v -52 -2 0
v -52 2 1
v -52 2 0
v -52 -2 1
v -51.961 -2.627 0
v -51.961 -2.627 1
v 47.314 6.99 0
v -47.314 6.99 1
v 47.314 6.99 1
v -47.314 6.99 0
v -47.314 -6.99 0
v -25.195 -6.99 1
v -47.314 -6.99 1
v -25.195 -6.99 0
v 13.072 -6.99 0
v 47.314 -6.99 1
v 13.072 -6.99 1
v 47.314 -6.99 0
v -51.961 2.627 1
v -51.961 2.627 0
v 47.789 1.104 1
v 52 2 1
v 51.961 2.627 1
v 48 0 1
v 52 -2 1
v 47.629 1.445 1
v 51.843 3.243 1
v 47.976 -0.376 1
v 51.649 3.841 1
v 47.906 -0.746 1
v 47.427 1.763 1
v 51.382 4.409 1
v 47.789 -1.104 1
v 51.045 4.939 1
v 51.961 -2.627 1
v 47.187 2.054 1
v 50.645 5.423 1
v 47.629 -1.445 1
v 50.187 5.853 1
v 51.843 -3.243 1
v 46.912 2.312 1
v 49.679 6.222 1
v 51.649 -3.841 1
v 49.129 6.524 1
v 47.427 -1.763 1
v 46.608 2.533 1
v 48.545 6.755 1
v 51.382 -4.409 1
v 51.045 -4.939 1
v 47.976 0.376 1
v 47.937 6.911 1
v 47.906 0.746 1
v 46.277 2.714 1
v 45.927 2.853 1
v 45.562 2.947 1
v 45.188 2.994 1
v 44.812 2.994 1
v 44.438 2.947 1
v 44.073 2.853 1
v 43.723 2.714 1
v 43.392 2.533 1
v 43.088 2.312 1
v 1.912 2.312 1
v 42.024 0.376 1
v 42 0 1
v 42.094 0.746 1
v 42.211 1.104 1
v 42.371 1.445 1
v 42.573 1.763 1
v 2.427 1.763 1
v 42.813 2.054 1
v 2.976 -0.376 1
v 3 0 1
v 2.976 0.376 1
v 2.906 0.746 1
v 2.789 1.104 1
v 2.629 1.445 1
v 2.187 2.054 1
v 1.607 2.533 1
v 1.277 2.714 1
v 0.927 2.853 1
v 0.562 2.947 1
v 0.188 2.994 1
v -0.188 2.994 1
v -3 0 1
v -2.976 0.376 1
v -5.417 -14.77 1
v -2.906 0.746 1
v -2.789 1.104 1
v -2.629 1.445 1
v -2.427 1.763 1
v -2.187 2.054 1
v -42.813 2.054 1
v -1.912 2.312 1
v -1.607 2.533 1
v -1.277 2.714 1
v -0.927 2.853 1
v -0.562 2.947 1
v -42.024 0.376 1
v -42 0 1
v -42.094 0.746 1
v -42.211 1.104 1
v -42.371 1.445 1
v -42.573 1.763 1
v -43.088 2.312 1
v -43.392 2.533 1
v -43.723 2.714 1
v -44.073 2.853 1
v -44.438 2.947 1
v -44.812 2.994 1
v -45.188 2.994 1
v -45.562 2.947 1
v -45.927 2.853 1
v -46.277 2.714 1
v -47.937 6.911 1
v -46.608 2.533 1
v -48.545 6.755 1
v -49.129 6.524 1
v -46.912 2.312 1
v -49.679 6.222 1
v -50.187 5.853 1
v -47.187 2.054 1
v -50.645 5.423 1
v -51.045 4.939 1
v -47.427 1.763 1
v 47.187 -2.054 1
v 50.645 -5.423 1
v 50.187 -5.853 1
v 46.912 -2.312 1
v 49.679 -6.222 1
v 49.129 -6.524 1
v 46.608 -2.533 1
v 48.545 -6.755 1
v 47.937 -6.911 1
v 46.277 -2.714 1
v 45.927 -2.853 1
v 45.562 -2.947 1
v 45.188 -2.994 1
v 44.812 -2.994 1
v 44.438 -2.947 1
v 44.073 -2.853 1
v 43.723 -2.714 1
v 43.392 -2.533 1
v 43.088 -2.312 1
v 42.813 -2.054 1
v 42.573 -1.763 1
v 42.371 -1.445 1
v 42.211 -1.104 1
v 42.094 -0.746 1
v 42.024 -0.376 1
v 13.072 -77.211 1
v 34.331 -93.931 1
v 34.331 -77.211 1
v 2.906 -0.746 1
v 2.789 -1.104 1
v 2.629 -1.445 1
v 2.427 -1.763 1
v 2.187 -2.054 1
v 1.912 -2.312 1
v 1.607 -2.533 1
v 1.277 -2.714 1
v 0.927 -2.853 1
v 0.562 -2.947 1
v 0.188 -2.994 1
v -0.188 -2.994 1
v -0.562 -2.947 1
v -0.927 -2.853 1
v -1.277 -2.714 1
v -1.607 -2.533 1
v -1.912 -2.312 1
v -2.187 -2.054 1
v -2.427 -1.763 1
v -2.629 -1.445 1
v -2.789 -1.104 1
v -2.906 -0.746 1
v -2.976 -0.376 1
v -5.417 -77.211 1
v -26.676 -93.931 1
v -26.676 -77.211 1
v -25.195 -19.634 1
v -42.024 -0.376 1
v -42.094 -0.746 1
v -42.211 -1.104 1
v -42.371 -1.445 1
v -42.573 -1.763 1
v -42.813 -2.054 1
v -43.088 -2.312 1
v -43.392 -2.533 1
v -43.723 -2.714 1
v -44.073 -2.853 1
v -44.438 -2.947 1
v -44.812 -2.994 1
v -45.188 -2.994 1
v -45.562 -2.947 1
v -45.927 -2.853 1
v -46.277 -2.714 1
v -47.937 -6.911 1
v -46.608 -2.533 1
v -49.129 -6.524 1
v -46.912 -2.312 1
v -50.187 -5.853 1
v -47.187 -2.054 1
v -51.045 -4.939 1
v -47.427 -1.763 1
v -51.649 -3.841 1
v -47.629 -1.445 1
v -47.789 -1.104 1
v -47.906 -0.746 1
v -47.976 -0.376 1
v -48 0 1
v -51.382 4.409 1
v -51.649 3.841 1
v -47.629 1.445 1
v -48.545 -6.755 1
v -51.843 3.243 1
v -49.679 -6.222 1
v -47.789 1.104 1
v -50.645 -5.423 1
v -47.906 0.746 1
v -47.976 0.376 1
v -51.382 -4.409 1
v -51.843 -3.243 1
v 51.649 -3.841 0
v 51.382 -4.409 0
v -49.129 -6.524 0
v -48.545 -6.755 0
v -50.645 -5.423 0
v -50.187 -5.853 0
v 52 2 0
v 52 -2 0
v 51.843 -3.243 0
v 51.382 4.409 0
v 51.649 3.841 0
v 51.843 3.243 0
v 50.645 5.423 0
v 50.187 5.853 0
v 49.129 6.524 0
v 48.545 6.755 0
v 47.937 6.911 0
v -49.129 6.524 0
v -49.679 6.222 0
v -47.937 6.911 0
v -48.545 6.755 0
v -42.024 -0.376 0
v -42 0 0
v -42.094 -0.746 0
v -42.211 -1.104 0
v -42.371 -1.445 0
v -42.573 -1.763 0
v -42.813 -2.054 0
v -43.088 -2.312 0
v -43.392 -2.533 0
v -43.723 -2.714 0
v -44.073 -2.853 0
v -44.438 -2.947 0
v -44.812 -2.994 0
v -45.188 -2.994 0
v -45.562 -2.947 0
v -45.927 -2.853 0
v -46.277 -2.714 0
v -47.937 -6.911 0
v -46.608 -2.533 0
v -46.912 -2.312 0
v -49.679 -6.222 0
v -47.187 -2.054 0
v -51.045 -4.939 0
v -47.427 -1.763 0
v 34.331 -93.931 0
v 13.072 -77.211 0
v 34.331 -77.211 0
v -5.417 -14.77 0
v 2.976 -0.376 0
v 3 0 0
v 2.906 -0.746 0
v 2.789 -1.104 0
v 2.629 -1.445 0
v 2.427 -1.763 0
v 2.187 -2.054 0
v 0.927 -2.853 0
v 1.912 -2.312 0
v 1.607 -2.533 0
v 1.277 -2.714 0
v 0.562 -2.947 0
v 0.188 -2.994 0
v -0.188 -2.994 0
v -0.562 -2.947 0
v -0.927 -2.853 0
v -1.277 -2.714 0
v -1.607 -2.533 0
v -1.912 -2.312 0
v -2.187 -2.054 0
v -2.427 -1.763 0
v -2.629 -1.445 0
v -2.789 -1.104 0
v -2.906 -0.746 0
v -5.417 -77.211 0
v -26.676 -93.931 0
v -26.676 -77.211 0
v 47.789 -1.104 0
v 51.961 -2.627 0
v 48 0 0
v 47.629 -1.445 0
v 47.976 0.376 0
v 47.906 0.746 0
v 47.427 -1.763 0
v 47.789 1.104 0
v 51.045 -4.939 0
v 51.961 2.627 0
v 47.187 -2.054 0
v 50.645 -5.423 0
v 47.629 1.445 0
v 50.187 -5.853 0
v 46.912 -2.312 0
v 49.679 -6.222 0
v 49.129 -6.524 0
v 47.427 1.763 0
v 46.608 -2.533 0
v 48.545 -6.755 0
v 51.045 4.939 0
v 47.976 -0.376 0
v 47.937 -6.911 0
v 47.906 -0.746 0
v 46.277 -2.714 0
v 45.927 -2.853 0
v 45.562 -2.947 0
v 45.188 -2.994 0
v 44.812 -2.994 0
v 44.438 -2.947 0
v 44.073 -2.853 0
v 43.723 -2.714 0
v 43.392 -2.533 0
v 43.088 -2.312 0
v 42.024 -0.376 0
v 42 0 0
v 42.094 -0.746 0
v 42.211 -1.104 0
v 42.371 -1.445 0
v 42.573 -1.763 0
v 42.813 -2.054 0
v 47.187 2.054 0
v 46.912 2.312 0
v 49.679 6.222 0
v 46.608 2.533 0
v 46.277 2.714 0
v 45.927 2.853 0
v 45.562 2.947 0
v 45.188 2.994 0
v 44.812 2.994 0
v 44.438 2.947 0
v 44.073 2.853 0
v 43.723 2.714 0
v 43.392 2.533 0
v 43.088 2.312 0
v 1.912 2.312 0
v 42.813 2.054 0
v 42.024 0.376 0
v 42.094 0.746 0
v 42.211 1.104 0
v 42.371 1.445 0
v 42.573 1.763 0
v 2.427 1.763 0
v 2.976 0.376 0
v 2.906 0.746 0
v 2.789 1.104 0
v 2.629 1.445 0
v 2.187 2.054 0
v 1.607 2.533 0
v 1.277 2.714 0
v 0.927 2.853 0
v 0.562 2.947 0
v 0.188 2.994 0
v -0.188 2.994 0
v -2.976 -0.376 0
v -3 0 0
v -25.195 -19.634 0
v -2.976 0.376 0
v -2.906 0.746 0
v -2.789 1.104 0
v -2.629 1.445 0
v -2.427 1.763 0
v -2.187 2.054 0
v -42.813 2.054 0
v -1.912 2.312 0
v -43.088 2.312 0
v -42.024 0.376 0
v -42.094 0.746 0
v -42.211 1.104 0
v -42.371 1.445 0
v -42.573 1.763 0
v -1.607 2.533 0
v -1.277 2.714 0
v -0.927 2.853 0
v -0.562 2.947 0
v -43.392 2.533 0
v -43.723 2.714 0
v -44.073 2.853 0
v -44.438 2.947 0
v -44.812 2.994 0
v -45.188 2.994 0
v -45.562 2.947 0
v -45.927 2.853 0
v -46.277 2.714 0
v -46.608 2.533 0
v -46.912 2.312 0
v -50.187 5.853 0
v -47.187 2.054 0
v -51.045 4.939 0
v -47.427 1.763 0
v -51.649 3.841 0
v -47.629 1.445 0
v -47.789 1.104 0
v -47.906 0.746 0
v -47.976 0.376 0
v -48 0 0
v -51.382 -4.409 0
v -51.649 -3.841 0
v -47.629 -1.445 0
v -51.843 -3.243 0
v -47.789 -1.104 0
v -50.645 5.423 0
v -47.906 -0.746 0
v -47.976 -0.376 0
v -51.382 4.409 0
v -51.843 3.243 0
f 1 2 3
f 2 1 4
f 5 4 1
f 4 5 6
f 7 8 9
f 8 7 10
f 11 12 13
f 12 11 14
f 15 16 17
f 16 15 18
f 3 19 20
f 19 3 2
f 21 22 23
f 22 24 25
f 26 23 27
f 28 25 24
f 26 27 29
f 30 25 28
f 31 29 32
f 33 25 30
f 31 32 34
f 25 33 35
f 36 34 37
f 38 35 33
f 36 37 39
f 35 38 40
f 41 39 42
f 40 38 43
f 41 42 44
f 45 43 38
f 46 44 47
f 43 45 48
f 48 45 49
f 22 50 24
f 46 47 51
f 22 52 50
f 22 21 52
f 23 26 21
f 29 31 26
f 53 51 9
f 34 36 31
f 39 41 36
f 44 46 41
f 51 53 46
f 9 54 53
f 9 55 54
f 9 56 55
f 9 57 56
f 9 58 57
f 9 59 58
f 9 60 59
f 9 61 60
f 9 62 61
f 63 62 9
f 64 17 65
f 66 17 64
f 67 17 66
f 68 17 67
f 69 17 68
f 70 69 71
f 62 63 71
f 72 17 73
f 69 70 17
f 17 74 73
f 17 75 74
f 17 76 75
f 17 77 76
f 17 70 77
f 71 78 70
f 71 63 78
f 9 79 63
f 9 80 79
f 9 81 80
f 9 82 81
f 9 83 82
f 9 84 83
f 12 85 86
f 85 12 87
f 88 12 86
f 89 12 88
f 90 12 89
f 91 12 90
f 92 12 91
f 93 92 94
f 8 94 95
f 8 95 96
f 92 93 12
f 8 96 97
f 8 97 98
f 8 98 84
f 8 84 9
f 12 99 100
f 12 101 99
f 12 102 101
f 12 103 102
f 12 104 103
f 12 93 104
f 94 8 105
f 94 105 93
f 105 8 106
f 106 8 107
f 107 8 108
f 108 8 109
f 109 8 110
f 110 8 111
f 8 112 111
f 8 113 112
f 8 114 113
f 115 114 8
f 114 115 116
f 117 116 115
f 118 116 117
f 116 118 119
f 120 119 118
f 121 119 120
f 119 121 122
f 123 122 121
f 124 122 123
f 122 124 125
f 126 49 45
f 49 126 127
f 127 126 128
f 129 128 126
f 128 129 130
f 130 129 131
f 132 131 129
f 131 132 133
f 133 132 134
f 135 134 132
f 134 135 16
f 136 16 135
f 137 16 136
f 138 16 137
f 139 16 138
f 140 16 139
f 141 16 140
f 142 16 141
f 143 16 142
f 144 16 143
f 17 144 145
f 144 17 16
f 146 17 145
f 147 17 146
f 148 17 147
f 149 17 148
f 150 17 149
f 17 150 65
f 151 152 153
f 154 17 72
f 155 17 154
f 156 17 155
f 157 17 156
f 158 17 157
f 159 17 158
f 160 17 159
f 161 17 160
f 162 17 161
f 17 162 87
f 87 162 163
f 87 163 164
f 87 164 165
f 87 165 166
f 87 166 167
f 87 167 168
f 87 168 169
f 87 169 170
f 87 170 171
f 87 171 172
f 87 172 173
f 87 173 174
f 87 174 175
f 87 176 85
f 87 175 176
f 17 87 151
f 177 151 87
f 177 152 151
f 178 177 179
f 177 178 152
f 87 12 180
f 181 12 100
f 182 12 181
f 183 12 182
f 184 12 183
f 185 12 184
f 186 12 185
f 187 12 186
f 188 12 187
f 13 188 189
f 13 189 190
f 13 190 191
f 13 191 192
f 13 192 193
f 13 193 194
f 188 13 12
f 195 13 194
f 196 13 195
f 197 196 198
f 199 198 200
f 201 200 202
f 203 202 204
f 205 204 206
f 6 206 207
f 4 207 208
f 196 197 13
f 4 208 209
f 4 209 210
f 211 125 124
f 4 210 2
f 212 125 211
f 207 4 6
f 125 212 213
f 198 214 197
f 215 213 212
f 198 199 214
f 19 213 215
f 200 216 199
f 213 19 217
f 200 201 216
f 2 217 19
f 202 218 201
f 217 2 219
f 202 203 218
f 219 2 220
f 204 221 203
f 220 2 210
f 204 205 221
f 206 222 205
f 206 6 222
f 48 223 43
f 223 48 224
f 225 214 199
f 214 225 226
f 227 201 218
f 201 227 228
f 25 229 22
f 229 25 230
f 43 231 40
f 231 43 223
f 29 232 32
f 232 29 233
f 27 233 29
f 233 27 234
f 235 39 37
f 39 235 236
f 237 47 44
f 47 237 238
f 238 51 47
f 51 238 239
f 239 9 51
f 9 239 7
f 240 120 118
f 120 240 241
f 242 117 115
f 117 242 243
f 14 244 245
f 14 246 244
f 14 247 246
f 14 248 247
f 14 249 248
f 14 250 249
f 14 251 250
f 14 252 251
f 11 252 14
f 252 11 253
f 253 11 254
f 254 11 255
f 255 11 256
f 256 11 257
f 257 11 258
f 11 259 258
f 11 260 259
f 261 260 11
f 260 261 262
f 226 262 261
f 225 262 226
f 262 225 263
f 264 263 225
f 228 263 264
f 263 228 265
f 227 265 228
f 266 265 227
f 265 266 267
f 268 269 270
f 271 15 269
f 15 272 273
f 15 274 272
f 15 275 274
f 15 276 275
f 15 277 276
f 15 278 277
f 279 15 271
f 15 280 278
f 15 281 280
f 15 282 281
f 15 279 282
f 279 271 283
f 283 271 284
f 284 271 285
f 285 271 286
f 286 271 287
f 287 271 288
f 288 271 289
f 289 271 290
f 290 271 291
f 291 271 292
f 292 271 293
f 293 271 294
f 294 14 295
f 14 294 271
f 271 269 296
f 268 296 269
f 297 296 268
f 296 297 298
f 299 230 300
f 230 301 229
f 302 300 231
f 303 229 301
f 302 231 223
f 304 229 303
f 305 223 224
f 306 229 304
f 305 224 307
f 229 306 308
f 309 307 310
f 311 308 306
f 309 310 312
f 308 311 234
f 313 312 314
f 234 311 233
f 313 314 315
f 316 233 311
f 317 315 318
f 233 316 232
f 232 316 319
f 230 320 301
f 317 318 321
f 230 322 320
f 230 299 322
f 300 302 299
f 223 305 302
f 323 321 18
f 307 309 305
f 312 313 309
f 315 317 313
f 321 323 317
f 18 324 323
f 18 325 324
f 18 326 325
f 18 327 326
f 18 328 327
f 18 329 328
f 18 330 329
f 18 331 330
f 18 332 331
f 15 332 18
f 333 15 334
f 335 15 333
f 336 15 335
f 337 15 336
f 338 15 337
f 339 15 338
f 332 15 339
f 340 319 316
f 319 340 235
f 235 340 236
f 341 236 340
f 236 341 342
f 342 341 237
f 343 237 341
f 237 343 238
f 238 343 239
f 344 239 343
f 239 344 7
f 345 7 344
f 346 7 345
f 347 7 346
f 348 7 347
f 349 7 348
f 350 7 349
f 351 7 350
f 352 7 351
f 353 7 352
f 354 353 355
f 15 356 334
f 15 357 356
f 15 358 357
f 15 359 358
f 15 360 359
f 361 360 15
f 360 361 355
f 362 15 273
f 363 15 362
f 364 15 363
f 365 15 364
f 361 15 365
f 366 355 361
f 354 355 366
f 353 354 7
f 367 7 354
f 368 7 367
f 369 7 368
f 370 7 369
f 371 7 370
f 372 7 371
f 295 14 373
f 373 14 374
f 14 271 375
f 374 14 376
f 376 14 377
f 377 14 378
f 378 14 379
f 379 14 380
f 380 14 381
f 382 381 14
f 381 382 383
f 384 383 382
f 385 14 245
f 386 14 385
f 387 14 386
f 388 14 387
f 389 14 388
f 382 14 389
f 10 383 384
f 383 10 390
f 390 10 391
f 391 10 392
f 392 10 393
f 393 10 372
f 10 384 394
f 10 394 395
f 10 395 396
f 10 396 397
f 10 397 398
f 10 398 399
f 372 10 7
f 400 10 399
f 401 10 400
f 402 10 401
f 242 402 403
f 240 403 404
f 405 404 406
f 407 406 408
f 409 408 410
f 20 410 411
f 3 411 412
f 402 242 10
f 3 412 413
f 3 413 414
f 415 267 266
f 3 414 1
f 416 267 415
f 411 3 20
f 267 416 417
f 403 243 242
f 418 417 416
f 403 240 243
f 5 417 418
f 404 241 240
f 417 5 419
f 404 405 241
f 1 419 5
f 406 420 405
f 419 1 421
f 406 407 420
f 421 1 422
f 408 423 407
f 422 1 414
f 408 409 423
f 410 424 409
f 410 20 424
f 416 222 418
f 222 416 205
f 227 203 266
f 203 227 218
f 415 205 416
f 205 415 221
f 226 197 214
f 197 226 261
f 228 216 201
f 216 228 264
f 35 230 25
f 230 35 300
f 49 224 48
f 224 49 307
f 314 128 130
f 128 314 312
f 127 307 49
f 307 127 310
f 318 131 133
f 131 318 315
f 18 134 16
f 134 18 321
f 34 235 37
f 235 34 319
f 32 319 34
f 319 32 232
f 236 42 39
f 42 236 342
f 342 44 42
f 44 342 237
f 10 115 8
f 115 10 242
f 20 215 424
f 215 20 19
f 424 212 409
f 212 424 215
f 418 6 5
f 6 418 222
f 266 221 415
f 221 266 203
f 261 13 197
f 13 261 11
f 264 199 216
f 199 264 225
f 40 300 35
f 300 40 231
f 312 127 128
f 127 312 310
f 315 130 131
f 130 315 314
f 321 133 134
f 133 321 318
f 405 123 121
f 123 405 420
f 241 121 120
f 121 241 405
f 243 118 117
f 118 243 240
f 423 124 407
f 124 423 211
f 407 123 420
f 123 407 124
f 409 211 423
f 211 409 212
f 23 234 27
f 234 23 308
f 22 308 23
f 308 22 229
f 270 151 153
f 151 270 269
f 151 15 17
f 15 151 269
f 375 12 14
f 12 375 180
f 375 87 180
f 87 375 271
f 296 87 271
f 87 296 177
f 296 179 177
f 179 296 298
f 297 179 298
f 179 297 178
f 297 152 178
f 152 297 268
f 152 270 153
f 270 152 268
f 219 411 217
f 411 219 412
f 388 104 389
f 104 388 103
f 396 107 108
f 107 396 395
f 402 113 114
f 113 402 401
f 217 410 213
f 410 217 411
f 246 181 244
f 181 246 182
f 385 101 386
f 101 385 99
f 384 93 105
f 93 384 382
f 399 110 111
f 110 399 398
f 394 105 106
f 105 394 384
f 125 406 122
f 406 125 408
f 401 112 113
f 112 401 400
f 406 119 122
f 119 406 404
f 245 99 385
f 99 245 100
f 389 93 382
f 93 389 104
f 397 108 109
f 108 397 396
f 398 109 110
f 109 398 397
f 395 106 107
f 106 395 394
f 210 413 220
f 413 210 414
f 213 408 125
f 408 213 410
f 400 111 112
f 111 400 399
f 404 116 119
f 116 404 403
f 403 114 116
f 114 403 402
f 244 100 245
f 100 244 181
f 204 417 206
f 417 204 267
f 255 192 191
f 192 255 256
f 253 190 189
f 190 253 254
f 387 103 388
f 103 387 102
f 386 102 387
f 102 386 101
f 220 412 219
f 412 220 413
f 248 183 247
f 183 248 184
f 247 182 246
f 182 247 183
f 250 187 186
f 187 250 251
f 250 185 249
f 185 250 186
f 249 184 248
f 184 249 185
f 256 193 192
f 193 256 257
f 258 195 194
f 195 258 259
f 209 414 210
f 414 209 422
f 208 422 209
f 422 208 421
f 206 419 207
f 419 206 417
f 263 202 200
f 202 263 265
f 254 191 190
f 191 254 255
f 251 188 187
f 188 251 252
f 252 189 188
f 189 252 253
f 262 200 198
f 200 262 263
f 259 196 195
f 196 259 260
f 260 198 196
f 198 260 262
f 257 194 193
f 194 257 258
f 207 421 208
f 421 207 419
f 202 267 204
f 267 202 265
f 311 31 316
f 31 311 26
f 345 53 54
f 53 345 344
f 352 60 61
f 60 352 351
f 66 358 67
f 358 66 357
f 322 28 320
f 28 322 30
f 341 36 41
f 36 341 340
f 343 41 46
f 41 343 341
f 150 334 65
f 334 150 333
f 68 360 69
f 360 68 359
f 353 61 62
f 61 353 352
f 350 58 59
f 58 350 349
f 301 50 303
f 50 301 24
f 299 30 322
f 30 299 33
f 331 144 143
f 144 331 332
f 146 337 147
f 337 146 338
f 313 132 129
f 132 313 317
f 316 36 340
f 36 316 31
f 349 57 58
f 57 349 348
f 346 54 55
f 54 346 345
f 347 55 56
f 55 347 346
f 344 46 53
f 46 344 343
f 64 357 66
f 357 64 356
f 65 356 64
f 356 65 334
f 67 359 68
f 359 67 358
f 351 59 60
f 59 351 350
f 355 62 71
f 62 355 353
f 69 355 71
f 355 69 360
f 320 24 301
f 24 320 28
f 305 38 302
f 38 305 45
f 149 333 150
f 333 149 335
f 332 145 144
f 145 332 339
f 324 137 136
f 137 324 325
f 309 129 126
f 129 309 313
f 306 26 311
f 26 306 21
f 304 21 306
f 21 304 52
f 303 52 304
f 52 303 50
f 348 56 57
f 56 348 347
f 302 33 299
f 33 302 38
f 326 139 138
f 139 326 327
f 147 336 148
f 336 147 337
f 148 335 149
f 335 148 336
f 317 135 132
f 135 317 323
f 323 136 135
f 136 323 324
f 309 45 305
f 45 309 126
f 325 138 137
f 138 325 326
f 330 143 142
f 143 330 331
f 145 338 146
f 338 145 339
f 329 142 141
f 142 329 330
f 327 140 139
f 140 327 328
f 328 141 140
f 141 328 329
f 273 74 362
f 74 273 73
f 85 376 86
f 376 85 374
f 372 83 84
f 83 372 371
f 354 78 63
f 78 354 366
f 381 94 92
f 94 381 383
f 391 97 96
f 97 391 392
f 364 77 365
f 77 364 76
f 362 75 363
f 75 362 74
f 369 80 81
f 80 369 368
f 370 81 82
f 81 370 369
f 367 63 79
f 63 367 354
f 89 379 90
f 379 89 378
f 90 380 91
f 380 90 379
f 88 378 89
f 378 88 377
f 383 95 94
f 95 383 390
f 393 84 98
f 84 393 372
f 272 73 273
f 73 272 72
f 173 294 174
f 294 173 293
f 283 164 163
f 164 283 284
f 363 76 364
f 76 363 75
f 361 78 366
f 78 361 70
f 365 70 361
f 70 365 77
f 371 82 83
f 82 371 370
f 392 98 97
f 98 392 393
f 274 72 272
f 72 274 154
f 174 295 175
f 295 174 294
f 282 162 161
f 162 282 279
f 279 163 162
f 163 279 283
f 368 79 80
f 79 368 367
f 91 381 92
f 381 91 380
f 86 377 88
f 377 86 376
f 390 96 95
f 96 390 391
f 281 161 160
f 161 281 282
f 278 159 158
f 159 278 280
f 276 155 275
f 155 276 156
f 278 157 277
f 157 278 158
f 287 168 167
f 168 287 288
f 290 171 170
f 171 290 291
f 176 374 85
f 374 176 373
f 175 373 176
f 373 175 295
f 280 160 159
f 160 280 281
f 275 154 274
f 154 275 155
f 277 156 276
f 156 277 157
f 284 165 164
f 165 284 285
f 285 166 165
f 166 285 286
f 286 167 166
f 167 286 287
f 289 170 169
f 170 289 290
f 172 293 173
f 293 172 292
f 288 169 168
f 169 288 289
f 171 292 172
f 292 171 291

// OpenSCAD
$fn = 50;


difference() {
	union() {
		translate(v = [0, 0, 0]) {
			rotate(a = [0, 0, 0]) {
				hull() {
					translate(v = [-47.0000000000, 2.0000000000, 0]) {
						rotate(a = [0, 0, 0]) {
							translate(v = [0, 0, 0]) {
								rotate(a = [0, 0, 0]) {
									cylinder(h = 1, r = 5);
								}
							}
						}
					}
					translate(v = [47.0000000000, 2.0000000000, 0]) {
						rotate(a = [0, 0, 0]) {
							translate(v = [0, 0, 0]) {
								rotate(a = [0, 0, 0]) {
									cylinder(h = 1, r = 5);
								}
							}
						}
					}
					translate(v = [-47.0000000000, -2.0000000000, 0]) {
						rotate(a = [0, 0, 0]) {
							translate(v = [0, 0, 0]) {
								rotate(a = [0, 0, 0]) {
									cylinder(h = 1, r = 5);
								}
							}
						}
					}
					translate(v = [47.0000000000, -2.0000000000, 0]) {
						rotate(a = [0, 0, 0]) {
							translate(v = [0, 0, 0]) {
								rotate(a = [0, 0, 0]) {
									cylinder(h = 1, r = 5);
								}
							}
						}
					}
				}
			}
		}
		translate(v = [0, 0, 0]) {
			rotate(a = [0, 0, 0]) {
				linear_extrude(height = 1) {
					text(font = "DejaVu Sans Mono:style=Bold", halign = "center", size = 95.0000000000, text = "1", valign = "top");
				}
			}
		}
	}
	union() {
		translate(v = [-45.0000000000, 0.0000000000, -125.0000000000]) {
			rotate(a = [0, 0, 0]) {
				cylinder(h = 250, r = 3.0000000000);
			}
		}
		translate(v = [45.0000000000, 0.0000000000, -125.0000000000]) {
			rotate(a = [0, 0, 0]) {
				cylinder(h = 250, r = 3.0000000000);
			}
		}
		translate(v = [45.0000000000, 0.0000000000, -125.0000000000]) {
			rotate(a = [0, 0, 0]) {
				cylinder(h = 250, r = 3.0000000000);
			}
		}
		translate(v = [0, 0, -125.0000000000]) {
			rotate(a = [0, 0, 0]) {
				cylinder(h = 250, r = 3.0000000000);
			}
		}
	}
}
